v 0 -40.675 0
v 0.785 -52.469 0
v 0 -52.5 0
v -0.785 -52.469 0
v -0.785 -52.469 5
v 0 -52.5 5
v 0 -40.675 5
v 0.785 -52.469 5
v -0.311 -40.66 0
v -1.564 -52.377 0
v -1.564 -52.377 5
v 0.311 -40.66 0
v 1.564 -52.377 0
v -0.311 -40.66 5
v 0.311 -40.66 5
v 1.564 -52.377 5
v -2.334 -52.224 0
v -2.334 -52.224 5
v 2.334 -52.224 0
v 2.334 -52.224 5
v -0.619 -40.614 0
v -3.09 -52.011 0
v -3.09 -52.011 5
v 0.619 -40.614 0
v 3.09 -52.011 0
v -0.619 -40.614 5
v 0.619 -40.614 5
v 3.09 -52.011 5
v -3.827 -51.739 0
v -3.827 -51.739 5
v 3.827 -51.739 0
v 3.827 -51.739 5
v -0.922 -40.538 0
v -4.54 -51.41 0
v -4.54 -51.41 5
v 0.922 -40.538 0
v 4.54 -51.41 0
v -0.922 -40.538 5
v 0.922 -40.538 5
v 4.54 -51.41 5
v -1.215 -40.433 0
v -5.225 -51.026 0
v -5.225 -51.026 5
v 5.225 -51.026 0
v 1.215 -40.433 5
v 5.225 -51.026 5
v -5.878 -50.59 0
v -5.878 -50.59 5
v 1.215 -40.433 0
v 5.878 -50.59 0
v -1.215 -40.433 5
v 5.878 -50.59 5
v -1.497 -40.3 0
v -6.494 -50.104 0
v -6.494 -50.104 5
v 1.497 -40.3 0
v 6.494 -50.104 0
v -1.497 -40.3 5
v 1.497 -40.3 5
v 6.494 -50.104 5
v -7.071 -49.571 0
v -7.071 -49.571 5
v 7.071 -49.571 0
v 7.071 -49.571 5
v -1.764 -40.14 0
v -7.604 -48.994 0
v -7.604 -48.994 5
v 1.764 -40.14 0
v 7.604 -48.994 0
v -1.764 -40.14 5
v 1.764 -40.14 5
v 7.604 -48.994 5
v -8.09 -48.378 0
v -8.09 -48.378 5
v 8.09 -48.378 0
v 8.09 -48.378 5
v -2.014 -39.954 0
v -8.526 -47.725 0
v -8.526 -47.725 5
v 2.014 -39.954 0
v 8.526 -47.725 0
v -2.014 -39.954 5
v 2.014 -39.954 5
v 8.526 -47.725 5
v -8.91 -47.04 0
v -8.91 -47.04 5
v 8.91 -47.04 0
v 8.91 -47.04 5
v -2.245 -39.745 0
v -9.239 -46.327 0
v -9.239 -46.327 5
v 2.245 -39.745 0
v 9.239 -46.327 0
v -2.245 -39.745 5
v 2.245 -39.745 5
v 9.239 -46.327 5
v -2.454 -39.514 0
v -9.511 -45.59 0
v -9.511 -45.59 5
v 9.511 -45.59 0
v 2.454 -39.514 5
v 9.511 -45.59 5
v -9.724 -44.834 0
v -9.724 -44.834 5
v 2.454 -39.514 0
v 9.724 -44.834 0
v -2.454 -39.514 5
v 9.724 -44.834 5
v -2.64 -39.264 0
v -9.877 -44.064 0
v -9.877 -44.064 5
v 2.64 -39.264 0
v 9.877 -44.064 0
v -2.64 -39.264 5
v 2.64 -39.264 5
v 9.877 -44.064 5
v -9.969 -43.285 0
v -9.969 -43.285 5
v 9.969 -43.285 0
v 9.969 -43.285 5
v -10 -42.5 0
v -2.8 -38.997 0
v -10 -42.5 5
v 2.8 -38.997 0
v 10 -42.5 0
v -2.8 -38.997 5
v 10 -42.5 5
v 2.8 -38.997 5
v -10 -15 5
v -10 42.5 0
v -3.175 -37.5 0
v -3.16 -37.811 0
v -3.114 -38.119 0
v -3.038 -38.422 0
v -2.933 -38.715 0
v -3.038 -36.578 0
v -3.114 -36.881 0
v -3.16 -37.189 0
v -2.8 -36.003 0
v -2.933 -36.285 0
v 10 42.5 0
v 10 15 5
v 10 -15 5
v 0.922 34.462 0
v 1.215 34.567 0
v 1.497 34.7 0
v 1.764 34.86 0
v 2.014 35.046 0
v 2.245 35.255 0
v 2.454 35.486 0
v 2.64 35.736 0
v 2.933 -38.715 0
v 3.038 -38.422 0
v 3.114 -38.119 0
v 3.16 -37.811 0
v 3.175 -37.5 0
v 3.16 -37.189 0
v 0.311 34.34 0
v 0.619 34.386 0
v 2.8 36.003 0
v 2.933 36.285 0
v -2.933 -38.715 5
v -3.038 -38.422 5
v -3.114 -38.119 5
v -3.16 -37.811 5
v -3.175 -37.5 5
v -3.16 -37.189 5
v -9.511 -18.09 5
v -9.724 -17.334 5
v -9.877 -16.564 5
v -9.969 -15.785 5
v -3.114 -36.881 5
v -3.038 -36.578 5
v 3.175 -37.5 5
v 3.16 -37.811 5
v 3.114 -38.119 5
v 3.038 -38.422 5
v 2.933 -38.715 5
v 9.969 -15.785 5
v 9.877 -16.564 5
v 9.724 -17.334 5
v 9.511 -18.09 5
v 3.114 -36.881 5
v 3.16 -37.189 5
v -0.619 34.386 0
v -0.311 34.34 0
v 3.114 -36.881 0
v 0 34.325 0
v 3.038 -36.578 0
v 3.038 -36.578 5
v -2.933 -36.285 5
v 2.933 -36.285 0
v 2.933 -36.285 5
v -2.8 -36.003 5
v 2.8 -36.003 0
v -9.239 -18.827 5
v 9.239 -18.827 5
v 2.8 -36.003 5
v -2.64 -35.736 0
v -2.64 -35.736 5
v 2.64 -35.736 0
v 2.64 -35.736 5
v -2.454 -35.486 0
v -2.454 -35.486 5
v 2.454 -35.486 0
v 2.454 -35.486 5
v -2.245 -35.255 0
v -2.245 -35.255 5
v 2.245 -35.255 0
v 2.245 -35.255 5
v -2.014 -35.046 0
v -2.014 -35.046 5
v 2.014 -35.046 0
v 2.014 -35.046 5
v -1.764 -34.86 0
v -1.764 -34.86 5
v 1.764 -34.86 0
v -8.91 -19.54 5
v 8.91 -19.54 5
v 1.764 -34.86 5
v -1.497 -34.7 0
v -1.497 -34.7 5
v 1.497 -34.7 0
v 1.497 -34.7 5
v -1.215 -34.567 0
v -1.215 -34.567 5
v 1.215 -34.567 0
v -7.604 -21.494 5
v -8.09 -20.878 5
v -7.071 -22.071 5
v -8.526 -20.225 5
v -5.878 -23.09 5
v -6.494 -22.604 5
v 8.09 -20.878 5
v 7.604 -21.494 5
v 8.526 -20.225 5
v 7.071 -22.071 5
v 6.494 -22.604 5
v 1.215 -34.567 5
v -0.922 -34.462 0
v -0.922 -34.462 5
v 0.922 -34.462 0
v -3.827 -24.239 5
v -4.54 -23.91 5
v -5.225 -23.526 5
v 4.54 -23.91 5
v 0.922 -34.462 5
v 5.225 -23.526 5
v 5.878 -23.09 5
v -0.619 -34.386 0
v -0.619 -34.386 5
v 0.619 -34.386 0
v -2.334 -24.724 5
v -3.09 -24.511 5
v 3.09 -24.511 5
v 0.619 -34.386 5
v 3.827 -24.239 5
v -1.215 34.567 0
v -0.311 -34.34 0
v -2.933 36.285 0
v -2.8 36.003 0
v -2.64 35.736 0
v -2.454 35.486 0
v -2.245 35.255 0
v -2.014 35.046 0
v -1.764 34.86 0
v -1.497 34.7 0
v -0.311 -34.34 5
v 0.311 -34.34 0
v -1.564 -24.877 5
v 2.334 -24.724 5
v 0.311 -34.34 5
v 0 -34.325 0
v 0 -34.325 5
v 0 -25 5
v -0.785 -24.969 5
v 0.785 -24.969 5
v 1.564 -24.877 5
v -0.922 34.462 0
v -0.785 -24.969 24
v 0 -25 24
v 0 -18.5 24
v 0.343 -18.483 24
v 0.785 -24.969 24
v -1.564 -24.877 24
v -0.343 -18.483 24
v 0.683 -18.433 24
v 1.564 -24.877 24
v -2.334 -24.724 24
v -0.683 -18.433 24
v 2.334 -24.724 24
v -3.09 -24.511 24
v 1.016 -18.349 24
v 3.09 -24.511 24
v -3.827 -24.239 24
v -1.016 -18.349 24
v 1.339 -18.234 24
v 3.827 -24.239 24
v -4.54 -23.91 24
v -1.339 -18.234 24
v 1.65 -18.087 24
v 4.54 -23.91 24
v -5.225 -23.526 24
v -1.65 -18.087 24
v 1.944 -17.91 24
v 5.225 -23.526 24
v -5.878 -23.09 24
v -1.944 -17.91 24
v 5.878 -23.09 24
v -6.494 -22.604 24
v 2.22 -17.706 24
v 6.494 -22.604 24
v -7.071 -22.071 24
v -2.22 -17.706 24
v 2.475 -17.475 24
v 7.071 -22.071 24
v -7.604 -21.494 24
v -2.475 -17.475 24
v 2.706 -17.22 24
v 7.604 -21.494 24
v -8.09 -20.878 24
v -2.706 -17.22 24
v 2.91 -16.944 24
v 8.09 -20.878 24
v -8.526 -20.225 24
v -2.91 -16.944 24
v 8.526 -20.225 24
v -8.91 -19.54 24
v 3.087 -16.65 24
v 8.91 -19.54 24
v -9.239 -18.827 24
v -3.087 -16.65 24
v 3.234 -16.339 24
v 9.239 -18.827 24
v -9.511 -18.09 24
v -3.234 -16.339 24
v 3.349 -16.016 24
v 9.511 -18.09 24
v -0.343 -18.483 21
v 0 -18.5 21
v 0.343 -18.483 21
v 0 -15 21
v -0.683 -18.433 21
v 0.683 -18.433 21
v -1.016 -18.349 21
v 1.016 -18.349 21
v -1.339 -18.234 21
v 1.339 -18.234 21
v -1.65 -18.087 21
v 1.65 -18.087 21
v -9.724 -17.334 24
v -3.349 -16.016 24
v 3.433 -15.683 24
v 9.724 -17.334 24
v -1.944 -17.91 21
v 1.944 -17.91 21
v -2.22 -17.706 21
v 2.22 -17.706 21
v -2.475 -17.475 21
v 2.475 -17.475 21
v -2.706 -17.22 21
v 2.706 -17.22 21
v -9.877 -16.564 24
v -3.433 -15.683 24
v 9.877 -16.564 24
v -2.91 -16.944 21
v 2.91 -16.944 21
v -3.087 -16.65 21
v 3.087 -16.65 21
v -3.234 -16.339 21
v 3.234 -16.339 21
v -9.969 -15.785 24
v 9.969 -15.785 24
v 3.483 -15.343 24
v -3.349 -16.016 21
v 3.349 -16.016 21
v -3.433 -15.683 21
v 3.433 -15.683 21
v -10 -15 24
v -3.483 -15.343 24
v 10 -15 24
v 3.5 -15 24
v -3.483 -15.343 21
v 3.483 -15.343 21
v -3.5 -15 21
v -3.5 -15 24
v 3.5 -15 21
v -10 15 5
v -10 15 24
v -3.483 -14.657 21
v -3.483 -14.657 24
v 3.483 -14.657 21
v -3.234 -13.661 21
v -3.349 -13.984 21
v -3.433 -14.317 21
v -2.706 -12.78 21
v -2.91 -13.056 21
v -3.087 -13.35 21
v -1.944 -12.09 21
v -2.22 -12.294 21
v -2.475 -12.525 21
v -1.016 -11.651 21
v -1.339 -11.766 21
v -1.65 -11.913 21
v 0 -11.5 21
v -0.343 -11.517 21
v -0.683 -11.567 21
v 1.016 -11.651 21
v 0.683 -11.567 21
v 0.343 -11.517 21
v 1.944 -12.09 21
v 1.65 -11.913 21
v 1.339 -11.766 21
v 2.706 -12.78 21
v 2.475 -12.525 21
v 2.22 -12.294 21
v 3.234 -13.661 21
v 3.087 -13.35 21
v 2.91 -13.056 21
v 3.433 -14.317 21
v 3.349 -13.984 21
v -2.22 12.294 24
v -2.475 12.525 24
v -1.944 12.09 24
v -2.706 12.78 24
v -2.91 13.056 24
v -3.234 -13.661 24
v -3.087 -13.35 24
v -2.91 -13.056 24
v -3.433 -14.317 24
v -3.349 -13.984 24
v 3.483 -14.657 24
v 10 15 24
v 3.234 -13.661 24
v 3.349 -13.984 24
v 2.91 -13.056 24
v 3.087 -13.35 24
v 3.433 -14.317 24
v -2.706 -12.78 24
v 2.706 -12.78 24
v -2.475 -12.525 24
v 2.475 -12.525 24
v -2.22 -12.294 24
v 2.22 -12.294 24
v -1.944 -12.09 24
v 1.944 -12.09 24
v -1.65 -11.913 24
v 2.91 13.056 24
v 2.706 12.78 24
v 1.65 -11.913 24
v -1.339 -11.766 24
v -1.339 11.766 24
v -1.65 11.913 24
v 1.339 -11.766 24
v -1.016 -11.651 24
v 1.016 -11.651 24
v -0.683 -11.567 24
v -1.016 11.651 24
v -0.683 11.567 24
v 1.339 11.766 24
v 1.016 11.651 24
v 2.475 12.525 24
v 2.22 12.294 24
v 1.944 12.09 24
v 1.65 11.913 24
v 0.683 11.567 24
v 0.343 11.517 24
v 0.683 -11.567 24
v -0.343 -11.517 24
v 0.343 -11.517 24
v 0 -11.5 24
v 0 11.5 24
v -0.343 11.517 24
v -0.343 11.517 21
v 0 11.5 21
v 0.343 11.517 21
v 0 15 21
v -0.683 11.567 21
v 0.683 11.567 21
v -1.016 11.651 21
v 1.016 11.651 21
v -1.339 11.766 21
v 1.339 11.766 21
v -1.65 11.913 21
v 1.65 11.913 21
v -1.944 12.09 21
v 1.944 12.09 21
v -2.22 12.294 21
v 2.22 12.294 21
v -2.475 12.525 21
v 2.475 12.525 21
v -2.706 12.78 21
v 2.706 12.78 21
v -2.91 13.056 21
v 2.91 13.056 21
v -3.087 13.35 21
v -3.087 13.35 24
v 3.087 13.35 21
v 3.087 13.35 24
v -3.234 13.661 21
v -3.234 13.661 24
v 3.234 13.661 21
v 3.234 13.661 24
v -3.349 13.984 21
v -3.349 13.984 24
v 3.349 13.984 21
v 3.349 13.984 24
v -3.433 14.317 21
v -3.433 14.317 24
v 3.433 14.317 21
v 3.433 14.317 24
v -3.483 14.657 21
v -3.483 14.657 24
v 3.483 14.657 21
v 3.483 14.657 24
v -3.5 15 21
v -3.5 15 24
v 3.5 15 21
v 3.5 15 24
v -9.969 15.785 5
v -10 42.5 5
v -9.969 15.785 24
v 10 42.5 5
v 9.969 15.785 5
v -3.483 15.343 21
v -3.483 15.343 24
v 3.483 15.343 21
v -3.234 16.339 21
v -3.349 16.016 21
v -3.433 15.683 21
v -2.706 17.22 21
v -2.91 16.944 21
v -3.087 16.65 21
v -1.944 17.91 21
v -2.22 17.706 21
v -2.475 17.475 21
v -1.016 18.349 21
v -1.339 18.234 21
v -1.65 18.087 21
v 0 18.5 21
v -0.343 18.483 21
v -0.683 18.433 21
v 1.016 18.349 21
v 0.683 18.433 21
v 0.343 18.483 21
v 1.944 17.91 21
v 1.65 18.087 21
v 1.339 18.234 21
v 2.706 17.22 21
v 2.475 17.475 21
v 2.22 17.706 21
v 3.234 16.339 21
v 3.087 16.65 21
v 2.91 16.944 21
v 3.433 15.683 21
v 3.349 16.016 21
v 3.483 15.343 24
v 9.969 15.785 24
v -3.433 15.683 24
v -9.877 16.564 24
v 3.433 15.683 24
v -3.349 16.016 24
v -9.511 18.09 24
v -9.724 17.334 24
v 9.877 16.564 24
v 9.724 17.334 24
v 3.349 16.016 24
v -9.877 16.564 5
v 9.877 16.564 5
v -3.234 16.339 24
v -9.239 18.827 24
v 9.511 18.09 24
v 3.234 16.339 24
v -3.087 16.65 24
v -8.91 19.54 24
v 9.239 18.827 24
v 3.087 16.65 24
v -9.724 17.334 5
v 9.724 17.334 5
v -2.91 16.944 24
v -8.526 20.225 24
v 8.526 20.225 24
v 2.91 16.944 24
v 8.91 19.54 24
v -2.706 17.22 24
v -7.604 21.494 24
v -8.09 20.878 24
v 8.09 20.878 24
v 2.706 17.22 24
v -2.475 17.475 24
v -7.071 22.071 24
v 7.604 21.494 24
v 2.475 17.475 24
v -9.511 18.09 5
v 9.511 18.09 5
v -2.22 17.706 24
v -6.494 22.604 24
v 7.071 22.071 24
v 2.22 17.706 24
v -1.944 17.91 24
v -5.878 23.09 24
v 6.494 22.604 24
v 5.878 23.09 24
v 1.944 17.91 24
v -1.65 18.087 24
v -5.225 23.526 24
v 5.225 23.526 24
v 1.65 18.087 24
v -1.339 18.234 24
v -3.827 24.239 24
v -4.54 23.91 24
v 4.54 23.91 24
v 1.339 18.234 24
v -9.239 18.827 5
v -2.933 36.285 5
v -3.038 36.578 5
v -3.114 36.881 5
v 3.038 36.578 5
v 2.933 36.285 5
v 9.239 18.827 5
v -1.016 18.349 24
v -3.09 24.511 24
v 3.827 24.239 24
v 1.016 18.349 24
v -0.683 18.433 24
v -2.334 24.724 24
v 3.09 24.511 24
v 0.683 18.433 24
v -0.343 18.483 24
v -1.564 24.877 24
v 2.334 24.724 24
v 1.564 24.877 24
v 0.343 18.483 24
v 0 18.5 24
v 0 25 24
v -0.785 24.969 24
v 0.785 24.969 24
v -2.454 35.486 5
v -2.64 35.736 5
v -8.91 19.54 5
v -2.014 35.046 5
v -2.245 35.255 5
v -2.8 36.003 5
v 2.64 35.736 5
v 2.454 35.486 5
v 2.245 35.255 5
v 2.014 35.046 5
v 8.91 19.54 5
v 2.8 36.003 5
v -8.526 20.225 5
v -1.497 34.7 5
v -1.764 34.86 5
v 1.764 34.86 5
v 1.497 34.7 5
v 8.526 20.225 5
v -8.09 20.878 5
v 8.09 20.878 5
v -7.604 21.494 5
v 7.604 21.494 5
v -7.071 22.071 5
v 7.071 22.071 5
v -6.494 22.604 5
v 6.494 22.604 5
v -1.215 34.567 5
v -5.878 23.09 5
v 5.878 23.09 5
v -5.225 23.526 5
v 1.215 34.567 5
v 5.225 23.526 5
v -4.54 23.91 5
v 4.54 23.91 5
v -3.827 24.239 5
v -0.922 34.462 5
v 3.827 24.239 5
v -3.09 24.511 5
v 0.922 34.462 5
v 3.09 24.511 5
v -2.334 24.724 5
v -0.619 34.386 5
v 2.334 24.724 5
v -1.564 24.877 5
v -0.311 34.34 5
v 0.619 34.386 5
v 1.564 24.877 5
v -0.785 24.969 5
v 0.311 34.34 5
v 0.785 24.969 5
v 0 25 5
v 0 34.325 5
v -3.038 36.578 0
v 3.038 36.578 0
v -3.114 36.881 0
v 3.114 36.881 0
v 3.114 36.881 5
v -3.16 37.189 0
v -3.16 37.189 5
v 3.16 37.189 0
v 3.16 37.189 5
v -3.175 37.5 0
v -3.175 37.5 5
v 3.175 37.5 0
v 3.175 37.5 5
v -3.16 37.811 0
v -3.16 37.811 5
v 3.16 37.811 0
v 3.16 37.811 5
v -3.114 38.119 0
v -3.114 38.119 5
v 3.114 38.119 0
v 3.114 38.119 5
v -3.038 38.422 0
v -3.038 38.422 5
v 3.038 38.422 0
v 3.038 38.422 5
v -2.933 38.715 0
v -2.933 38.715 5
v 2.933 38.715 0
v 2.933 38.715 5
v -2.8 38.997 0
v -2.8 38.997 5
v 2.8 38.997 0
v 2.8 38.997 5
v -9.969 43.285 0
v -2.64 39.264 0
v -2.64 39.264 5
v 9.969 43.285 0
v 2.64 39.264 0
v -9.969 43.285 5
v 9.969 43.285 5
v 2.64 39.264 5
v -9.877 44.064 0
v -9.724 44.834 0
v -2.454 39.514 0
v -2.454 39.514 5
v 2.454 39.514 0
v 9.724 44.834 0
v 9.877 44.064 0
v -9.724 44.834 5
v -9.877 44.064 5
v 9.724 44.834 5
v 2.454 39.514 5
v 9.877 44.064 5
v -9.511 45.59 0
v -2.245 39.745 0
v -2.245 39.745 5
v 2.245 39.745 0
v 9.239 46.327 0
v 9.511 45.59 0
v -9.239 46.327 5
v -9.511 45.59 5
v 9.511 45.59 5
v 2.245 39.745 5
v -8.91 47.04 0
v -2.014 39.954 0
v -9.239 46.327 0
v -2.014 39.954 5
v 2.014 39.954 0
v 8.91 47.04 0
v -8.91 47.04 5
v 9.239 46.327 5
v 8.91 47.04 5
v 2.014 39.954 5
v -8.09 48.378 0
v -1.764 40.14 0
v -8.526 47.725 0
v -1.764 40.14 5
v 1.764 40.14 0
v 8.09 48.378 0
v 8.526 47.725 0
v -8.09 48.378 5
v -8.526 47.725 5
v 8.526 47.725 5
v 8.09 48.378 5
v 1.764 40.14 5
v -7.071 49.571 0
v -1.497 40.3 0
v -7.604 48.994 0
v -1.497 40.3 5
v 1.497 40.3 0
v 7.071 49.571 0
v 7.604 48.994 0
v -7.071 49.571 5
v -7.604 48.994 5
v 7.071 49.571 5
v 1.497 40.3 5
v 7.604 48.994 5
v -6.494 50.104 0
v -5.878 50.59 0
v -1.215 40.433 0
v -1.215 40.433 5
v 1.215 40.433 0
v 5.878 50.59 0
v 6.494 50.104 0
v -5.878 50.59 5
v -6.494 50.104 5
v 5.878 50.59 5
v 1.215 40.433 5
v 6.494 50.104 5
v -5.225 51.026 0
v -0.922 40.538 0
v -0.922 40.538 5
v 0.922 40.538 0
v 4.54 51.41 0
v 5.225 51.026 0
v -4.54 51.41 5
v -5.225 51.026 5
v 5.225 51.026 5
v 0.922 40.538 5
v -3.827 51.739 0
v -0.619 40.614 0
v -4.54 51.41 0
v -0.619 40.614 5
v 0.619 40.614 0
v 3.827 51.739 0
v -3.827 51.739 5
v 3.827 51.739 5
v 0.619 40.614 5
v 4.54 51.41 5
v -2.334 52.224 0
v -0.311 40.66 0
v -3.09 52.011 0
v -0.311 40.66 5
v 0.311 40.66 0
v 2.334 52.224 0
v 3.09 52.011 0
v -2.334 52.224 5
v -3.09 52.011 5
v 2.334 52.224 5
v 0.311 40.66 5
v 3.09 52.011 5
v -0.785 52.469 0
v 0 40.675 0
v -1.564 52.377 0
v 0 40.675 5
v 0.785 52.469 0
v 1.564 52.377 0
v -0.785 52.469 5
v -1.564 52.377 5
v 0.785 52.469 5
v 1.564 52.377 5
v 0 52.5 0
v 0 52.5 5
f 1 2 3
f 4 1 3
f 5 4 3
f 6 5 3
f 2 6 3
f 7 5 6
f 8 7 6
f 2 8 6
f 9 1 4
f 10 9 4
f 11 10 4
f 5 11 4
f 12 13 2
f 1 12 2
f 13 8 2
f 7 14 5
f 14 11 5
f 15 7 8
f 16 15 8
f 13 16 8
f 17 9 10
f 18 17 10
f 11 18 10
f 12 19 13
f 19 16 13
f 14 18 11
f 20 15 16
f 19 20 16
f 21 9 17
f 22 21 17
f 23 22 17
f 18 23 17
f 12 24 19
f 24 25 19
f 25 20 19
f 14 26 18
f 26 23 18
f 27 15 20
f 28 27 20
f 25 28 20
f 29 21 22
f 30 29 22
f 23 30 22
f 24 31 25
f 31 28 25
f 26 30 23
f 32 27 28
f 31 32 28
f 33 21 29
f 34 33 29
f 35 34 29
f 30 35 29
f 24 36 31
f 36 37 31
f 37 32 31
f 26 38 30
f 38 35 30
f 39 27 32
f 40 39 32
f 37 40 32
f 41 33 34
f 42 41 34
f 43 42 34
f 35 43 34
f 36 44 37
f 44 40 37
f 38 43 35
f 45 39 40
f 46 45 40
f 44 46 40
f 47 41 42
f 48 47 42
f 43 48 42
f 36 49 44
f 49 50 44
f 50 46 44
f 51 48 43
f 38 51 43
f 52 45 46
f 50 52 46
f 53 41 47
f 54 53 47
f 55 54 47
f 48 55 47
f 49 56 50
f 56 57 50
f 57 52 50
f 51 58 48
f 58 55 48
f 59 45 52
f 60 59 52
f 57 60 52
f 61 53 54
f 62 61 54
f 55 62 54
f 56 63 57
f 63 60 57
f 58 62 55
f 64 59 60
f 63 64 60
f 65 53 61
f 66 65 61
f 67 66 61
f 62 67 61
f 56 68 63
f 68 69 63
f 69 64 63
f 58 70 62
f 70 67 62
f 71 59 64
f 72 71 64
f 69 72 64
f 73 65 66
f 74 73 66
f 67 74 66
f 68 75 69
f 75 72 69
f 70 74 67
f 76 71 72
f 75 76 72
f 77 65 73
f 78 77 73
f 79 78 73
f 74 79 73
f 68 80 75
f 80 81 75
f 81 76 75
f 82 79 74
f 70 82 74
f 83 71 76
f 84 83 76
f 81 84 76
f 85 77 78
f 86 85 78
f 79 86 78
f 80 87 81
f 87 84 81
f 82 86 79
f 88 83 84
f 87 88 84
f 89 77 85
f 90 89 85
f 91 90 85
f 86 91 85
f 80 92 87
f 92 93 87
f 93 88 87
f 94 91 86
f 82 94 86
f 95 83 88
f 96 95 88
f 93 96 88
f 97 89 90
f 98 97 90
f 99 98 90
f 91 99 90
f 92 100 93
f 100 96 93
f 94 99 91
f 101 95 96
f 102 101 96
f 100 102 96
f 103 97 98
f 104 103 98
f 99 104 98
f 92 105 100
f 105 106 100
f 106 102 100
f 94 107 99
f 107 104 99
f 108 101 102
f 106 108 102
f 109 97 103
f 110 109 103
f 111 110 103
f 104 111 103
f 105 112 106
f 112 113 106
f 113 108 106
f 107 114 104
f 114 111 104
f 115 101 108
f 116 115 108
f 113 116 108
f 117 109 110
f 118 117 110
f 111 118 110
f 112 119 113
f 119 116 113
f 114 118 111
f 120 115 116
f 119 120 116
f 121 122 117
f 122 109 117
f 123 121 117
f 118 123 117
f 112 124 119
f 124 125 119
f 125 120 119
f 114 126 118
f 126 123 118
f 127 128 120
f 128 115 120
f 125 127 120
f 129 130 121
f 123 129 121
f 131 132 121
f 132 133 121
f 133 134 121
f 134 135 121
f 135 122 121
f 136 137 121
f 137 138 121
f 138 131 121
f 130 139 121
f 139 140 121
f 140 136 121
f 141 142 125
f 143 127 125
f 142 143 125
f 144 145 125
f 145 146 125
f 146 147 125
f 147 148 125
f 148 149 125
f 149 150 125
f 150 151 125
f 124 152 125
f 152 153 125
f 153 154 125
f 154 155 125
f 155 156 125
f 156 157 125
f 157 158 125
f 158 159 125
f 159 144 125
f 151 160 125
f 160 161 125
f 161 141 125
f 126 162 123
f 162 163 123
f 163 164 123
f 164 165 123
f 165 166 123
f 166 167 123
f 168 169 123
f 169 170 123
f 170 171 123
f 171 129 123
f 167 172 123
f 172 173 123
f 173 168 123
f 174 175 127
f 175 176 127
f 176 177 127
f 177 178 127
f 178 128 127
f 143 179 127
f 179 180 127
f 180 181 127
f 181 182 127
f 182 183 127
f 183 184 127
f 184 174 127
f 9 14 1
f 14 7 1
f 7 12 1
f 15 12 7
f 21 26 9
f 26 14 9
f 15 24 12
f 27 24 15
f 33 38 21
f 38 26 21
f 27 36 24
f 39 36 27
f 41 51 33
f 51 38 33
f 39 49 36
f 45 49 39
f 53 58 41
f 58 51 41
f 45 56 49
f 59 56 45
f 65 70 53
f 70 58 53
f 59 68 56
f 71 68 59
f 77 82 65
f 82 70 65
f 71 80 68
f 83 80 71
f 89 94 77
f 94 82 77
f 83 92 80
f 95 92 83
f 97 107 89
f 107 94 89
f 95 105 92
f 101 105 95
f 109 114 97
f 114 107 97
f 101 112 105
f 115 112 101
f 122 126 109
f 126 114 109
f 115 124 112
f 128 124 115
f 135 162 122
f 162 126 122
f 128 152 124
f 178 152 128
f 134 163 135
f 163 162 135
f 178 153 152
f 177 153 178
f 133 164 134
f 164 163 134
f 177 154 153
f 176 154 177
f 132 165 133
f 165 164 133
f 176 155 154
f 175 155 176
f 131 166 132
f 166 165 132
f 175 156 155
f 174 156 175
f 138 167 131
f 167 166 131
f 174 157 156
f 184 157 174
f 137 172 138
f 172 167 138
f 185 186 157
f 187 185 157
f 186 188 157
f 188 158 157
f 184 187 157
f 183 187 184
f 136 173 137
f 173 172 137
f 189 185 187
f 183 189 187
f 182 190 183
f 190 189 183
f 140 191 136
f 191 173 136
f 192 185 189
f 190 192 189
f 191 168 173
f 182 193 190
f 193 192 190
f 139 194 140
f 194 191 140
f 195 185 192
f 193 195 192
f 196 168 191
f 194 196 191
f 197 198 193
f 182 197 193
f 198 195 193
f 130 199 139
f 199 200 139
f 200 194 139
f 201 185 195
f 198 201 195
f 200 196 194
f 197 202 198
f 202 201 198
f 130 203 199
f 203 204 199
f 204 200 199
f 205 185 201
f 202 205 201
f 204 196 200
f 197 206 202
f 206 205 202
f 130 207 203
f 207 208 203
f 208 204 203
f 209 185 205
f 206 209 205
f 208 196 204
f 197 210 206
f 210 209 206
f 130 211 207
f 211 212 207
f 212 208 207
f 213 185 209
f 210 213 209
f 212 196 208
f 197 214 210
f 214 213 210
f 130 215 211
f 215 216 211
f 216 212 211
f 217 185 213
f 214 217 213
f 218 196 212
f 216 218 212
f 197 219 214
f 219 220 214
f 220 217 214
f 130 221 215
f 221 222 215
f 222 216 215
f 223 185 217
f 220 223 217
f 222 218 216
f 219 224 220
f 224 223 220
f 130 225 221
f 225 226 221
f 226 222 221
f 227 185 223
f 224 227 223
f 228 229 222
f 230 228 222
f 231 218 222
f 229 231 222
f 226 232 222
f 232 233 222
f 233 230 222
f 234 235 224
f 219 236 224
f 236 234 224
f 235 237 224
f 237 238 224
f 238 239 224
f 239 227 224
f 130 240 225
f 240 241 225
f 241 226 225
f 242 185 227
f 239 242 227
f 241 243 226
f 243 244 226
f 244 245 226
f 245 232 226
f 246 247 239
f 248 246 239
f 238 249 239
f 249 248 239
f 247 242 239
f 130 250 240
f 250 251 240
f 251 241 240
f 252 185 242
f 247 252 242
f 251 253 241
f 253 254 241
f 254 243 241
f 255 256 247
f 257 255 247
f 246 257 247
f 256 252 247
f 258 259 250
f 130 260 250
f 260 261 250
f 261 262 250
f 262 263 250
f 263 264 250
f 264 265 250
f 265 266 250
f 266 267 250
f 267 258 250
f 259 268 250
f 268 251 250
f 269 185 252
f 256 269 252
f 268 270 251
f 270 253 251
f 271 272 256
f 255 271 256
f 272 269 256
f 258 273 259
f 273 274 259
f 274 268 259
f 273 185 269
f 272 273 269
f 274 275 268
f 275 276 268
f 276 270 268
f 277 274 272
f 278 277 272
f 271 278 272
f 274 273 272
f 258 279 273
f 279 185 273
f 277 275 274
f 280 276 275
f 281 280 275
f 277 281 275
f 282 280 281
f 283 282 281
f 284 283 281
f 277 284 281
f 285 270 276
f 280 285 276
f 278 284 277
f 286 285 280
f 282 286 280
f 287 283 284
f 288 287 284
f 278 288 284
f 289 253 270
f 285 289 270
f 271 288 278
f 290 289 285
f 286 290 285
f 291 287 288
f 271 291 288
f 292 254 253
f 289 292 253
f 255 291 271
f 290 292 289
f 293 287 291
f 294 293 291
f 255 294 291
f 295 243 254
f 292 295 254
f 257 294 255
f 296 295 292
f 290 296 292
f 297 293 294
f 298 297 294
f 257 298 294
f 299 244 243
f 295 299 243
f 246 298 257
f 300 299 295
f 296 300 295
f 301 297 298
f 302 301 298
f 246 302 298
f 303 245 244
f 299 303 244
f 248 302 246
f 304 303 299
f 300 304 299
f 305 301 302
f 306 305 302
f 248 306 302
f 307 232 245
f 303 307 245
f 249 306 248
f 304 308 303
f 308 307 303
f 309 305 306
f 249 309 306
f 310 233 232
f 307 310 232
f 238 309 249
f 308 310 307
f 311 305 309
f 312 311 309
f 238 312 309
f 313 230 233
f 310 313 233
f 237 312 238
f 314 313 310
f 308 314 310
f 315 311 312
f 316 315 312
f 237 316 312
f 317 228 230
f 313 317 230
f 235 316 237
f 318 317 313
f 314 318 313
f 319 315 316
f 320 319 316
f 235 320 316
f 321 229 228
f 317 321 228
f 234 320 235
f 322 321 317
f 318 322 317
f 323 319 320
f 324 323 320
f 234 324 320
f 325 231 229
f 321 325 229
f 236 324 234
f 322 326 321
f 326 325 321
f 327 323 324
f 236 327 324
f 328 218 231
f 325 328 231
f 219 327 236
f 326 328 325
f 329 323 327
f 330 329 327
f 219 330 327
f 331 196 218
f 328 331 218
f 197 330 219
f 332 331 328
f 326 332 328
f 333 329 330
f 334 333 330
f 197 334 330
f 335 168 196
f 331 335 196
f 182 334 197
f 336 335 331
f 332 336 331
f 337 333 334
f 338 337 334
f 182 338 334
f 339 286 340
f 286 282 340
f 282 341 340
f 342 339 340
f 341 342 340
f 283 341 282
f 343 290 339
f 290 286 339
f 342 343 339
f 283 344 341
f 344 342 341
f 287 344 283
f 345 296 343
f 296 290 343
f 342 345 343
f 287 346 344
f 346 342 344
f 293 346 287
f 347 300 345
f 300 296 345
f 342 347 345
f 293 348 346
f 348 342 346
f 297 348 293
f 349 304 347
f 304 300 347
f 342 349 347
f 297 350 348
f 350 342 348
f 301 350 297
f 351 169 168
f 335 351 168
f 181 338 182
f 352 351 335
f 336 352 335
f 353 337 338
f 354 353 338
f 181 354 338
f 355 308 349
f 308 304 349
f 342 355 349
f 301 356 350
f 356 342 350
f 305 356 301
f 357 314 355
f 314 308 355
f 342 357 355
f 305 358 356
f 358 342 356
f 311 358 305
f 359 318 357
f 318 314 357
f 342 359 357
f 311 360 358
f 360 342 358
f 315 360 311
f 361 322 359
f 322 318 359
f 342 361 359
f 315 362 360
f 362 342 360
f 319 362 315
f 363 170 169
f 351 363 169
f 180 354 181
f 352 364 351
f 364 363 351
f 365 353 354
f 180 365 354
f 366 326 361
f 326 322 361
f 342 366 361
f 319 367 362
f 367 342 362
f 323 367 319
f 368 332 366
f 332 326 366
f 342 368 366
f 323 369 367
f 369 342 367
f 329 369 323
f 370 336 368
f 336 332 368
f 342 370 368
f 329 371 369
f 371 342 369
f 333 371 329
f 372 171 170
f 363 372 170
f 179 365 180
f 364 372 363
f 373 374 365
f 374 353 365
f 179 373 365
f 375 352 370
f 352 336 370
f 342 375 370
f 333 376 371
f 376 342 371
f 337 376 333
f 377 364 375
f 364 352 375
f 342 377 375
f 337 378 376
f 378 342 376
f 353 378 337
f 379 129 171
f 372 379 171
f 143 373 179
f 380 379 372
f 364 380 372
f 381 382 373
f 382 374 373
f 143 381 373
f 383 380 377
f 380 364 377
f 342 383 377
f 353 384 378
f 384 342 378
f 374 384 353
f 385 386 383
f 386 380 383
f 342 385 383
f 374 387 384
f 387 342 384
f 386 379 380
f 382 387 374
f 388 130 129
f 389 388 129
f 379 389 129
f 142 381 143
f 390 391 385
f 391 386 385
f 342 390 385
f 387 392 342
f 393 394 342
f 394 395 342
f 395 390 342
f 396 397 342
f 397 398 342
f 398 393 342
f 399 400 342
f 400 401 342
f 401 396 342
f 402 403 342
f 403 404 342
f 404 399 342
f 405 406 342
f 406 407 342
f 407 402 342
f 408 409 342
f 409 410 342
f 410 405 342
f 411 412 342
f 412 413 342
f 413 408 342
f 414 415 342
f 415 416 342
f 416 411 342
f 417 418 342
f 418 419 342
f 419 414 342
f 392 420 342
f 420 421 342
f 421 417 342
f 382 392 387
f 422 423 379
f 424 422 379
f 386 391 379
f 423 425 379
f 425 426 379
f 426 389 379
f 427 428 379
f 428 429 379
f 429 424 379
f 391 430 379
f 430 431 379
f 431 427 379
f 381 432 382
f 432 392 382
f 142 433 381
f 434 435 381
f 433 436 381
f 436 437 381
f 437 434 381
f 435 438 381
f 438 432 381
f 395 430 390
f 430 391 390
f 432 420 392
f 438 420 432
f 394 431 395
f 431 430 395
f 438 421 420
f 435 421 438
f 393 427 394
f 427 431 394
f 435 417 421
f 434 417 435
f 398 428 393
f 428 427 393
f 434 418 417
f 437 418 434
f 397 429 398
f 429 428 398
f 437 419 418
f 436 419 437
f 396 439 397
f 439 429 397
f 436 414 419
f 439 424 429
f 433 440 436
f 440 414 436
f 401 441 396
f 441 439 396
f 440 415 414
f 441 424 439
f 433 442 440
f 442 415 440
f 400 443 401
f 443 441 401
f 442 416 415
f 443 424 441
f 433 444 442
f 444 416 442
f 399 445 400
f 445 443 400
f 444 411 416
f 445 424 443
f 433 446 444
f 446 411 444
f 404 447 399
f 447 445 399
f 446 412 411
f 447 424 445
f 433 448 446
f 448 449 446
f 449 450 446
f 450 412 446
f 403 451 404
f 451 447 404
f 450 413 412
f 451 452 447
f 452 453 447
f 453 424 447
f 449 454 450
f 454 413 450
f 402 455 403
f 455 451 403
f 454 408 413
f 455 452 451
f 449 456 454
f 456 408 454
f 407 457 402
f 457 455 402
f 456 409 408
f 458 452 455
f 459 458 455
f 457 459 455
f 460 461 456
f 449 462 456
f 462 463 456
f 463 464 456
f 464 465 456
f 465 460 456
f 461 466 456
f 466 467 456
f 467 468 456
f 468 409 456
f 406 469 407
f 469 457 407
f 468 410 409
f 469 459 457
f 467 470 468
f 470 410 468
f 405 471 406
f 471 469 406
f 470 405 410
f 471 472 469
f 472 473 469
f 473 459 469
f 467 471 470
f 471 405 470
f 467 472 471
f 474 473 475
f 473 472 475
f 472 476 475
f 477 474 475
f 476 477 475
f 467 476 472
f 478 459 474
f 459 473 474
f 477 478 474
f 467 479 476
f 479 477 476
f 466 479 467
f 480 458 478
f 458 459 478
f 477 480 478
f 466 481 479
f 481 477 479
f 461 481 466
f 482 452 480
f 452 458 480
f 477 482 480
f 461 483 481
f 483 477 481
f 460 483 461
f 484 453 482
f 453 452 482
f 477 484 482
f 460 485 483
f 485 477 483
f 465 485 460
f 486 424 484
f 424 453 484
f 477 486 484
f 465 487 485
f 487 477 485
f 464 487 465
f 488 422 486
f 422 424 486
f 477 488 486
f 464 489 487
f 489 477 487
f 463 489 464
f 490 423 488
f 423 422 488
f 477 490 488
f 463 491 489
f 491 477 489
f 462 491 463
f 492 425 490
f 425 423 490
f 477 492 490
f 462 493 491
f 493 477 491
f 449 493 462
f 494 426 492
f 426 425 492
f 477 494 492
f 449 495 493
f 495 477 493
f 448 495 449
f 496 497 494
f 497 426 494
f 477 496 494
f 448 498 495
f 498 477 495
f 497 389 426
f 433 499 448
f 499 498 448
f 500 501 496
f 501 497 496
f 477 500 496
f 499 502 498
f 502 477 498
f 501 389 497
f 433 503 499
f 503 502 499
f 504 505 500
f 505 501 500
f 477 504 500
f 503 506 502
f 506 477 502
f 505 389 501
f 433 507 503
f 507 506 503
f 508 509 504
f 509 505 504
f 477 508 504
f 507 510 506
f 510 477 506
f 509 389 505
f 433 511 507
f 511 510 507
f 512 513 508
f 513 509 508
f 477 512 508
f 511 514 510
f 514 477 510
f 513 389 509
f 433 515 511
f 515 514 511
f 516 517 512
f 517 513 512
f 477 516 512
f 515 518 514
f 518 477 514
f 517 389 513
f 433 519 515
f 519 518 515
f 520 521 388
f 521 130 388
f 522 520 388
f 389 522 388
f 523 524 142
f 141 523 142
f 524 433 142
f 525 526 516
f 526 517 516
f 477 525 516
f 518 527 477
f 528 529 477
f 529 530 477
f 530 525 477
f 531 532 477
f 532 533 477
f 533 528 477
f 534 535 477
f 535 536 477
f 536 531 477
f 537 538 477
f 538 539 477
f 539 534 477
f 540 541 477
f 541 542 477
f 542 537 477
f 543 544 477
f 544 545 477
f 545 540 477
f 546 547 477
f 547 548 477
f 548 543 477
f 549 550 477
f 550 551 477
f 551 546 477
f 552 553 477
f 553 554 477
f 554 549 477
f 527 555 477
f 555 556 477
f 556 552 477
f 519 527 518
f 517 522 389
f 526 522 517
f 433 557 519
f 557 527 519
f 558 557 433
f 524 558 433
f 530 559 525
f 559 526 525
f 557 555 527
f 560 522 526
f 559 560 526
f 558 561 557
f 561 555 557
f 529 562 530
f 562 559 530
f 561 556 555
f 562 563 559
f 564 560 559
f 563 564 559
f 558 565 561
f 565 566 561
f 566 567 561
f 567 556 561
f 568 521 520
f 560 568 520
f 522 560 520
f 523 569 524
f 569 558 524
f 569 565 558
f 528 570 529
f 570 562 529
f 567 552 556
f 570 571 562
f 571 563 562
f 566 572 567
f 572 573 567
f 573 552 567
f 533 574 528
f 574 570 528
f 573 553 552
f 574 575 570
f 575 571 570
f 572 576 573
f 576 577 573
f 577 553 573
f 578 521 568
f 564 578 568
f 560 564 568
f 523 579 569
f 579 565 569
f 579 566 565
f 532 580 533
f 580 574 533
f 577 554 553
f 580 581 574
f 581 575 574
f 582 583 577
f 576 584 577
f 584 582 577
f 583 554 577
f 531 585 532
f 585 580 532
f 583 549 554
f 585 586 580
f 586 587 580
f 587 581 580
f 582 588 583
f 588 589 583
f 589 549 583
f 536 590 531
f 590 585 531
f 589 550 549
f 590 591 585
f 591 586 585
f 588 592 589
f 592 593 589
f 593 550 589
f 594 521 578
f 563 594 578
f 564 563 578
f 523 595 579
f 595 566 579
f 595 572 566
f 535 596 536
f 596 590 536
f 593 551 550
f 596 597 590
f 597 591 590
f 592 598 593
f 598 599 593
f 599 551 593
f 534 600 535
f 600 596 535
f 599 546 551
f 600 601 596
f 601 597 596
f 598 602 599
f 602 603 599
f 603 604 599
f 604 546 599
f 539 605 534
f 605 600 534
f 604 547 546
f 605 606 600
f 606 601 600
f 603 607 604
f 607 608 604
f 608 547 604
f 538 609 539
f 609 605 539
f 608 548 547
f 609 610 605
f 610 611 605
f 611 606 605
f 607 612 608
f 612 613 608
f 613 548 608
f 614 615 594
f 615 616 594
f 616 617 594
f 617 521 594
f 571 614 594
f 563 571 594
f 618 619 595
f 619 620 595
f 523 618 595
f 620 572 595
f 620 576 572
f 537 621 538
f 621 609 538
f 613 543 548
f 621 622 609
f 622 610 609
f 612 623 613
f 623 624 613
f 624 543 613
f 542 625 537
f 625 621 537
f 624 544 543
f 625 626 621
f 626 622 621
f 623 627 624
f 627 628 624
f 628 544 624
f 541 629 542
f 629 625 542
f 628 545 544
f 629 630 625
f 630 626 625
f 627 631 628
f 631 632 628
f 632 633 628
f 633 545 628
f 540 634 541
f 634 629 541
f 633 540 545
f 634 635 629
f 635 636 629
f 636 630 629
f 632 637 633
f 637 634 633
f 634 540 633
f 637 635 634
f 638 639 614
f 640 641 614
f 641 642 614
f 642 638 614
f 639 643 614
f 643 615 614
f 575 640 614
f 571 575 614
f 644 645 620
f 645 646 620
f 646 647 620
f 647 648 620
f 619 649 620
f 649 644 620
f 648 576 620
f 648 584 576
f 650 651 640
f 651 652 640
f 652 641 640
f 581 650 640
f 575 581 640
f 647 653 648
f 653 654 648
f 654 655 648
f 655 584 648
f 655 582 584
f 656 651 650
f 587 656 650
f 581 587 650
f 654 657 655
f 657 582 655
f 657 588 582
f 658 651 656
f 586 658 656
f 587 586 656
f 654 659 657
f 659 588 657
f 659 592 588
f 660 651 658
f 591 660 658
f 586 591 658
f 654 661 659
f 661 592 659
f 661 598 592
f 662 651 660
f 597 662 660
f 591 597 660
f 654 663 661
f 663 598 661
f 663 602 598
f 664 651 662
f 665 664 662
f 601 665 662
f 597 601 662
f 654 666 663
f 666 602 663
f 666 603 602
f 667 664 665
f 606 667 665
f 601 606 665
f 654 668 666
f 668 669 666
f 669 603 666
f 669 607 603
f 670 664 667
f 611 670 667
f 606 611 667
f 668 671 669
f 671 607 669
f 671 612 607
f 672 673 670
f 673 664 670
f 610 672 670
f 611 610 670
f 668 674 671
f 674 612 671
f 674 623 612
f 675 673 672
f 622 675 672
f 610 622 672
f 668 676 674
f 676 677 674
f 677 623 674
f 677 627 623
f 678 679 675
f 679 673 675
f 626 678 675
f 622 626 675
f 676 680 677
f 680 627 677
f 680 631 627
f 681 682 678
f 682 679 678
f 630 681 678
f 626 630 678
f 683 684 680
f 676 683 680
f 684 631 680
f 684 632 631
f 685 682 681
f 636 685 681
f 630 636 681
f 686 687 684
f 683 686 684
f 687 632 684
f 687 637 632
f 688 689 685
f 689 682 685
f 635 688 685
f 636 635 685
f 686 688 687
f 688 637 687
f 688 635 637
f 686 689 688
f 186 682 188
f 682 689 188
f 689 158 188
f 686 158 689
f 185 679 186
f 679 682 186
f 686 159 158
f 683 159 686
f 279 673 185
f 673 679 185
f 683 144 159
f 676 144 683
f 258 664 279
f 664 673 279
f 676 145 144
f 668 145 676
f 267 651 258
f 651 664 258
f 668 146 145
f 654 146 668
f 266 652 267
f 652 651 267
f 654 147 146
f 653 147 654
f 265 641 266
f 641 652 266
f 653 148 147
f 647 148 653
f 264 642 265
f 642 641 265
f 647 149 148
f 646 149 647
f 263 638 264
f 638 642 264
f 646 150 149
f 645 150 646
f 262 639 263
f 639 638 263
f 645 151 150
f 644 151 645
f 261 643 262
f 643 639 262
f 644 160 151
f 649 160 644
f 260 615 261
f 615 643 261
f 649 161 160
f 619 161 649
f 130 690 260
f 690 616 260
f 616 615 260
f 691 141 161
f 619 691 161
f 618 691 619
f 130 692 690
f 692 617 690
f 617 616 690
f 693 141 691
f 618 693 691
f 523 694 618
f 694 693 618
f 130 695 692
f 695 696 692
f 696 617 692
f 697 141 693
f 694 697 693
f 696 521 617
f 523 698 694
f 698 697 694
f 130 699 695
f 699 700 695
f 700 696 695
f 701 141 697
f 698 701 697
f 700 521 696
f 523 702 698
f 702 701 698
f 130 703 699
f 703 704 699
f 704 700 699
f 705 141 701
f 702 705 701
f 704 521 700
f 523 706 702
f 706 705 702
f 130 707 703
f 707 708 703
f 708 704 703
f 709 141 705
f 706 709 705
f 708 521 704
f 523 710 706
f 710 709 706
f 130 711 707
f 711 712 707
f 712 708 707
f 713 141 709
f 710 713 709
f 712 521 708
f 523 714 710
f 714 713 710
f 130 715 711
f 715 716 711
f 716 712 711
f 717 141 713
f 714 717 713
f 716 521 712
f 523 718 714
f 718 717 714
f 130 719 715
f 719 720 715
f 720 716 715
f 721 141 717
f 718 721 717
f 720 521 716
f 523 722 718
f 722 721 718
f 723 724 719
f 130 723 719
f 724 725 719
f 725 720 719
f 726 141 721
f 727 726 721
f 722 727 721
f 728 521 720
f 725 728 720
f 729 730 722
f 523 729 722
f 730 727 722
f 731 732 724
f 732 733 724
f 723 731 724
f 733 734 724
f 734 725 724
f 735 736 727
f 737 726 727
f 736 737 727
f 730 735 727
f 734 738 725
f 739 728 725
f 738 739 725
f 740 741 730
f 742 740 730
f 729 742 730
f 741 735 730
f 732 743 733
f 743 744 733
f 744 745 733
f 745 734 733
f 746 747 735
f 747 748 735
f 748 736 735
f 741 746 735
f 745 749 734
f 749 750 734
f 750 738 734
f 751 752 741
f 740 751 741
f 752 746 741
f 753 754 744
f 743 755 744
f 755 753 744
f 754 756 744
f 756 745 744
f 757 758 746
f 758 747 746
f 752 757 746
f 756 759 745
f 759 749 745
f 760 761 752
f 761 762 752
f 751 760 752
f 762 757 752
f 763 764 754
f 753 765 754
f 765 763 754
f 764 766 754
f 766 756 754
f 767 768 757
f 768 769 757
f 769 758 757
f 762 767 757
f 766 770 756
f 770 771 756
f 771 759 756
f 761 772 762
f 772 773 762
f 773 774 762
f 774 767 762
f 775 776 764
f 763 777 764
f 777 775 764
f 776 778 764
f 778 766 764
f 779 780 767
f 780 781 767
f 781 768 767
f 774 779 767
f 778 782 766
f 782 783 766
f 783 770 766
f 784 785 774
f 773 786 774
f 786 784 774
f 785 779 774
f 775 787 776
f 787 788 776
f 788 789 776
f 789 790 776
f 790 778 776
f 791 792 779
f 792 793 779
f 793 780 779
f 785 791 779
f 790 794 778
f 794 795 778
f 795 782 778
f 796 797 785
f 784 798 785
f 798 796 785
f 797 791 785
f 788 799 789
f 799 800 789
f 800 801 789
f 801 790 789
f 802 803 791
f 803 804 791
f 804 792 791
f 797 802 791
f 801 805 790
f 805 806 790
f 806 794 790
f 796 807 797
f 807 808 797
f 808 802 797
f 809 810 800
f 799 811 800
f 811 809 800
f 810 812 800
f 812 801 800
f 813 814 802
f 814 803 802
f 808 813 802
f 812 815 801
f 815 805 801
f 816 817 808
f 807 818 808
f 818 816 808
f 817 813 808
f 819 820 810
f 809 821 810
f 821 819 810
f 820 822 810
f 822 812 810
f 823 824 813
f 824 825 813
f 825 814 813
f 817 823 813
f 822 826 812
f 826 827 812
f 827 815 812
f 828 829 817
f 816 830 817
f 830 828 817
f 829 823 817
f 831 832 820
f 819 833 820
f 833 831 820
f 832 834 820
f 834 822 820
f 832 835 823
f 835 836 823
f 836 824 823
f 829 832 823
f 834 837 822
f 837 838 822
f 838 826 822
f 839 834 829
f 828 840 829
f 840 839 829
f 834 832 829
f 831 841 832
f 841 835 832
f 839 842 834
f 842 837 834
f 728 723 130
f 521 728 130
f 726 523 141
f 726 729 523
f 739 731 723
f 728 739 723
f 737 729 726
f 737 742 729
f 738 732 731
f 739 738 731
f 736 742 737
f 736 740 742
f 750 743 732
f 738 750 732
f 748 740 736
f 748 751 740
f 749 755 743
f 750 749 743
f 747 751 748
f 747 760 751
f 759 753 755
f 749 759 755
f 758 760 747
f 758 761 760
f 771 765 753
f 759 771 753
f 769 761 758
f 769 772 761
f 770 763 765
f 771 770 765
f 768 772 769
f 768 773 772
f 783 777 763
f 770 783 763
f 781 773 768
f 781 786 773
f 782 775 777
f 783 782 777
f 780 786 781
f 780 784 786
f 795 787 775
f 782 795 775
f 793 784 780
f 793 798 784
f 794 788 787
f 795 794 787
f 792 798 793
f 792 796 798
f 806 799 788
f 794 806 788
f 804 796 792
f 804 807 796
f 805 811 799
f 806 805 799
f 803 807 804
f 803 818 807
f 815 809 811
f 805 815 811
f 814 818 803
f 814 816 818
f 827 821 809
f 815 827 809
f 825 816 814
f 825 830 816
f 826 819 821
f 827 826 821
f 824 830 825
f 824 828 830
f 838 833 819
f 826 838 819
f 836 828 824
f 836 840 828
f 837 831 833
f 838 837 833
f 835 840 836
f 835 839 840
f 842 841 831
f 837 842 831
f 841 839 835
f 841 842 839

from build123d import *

# Parameters (mm, degrees)
SKETCH1_W           = 20
SKETCH1_H           = 105
BOSS_EXTRUDE1_DEPTH = 5
SKETCH2_R           = 3.175
CUT_EXTRUDE1_DEPTH  = 54.677276384
SKETCH4_W           = 20
SKETCH4_H           = 50
BOSS_EXTRUDE3_DEPTH = 19
SKETCH5_R           = 3.5
CUT_EXTRUDE2_DEPTH  = 3
FILLET5_R           = 10


with BuildPart() as part:
    # Sketch1 → Boss-Extrude1 (new body)
    with BuildSketch(Plane.XY):
        Rectangle(SKETCH1_W, SKETCH1_H)
    extrude(amount=BOSS_EXTRUDE1_DEPTH)

    # Sketch2 → Cut-Extrude1 (cut, through all)
    with BuildSketch(Plane.XY.offset(5)):
        with Locations((0, 37.5)):
            Circle(SKETCH2_R)
        with Locations((0, -37.5)):
            Circle(SKETCH2_R)
    extrude(amount=-CUT_EXTRUDE1_DEPTH, mode=Mode.SUBTRACT)

    # Sketch4 → Boss-Extrude3 (add)
    with BuildSketch(Plane.XY.offset(5)):
        Rectangle(SKETCH4_W, SKETCH4_H)
    extrude(amount=BOSS_EXTRUDE3_DEPTH)

    # Sketch5 → Cut-Extrude2 (cut)
    with BuildSketch(Plane.XY.offset(24)):
        with Locations((0, -15)):
            Circle(SKETCH5_R)
        with Locations((0, 15)):
            Circle(SKETCH5_R)
    extrude(amount=-CUT_EXTRUDE2_DEPTH, mode=Mode.SUBTRACT)

    # Fillet5
    fillet5_edges = [part.edges().sort_by_distance(p)[0] for p in [
        (10, -52.5, 2.5),
        (-10, -52.5, 2.5),
        (10, -25, 14.5),
        (-10, -25, 14.5),
        (10, 25, 14.5),
        (-10, 25, 14.5),
        (-10, 52.5, 2.5),
        (10, 52.5, 2.5),
    ]]
    fillet(fillet5_edges, radius=FILLET5_R - 0.0001)  # a hair under: the kernel refuses the full size


solid = part.part
